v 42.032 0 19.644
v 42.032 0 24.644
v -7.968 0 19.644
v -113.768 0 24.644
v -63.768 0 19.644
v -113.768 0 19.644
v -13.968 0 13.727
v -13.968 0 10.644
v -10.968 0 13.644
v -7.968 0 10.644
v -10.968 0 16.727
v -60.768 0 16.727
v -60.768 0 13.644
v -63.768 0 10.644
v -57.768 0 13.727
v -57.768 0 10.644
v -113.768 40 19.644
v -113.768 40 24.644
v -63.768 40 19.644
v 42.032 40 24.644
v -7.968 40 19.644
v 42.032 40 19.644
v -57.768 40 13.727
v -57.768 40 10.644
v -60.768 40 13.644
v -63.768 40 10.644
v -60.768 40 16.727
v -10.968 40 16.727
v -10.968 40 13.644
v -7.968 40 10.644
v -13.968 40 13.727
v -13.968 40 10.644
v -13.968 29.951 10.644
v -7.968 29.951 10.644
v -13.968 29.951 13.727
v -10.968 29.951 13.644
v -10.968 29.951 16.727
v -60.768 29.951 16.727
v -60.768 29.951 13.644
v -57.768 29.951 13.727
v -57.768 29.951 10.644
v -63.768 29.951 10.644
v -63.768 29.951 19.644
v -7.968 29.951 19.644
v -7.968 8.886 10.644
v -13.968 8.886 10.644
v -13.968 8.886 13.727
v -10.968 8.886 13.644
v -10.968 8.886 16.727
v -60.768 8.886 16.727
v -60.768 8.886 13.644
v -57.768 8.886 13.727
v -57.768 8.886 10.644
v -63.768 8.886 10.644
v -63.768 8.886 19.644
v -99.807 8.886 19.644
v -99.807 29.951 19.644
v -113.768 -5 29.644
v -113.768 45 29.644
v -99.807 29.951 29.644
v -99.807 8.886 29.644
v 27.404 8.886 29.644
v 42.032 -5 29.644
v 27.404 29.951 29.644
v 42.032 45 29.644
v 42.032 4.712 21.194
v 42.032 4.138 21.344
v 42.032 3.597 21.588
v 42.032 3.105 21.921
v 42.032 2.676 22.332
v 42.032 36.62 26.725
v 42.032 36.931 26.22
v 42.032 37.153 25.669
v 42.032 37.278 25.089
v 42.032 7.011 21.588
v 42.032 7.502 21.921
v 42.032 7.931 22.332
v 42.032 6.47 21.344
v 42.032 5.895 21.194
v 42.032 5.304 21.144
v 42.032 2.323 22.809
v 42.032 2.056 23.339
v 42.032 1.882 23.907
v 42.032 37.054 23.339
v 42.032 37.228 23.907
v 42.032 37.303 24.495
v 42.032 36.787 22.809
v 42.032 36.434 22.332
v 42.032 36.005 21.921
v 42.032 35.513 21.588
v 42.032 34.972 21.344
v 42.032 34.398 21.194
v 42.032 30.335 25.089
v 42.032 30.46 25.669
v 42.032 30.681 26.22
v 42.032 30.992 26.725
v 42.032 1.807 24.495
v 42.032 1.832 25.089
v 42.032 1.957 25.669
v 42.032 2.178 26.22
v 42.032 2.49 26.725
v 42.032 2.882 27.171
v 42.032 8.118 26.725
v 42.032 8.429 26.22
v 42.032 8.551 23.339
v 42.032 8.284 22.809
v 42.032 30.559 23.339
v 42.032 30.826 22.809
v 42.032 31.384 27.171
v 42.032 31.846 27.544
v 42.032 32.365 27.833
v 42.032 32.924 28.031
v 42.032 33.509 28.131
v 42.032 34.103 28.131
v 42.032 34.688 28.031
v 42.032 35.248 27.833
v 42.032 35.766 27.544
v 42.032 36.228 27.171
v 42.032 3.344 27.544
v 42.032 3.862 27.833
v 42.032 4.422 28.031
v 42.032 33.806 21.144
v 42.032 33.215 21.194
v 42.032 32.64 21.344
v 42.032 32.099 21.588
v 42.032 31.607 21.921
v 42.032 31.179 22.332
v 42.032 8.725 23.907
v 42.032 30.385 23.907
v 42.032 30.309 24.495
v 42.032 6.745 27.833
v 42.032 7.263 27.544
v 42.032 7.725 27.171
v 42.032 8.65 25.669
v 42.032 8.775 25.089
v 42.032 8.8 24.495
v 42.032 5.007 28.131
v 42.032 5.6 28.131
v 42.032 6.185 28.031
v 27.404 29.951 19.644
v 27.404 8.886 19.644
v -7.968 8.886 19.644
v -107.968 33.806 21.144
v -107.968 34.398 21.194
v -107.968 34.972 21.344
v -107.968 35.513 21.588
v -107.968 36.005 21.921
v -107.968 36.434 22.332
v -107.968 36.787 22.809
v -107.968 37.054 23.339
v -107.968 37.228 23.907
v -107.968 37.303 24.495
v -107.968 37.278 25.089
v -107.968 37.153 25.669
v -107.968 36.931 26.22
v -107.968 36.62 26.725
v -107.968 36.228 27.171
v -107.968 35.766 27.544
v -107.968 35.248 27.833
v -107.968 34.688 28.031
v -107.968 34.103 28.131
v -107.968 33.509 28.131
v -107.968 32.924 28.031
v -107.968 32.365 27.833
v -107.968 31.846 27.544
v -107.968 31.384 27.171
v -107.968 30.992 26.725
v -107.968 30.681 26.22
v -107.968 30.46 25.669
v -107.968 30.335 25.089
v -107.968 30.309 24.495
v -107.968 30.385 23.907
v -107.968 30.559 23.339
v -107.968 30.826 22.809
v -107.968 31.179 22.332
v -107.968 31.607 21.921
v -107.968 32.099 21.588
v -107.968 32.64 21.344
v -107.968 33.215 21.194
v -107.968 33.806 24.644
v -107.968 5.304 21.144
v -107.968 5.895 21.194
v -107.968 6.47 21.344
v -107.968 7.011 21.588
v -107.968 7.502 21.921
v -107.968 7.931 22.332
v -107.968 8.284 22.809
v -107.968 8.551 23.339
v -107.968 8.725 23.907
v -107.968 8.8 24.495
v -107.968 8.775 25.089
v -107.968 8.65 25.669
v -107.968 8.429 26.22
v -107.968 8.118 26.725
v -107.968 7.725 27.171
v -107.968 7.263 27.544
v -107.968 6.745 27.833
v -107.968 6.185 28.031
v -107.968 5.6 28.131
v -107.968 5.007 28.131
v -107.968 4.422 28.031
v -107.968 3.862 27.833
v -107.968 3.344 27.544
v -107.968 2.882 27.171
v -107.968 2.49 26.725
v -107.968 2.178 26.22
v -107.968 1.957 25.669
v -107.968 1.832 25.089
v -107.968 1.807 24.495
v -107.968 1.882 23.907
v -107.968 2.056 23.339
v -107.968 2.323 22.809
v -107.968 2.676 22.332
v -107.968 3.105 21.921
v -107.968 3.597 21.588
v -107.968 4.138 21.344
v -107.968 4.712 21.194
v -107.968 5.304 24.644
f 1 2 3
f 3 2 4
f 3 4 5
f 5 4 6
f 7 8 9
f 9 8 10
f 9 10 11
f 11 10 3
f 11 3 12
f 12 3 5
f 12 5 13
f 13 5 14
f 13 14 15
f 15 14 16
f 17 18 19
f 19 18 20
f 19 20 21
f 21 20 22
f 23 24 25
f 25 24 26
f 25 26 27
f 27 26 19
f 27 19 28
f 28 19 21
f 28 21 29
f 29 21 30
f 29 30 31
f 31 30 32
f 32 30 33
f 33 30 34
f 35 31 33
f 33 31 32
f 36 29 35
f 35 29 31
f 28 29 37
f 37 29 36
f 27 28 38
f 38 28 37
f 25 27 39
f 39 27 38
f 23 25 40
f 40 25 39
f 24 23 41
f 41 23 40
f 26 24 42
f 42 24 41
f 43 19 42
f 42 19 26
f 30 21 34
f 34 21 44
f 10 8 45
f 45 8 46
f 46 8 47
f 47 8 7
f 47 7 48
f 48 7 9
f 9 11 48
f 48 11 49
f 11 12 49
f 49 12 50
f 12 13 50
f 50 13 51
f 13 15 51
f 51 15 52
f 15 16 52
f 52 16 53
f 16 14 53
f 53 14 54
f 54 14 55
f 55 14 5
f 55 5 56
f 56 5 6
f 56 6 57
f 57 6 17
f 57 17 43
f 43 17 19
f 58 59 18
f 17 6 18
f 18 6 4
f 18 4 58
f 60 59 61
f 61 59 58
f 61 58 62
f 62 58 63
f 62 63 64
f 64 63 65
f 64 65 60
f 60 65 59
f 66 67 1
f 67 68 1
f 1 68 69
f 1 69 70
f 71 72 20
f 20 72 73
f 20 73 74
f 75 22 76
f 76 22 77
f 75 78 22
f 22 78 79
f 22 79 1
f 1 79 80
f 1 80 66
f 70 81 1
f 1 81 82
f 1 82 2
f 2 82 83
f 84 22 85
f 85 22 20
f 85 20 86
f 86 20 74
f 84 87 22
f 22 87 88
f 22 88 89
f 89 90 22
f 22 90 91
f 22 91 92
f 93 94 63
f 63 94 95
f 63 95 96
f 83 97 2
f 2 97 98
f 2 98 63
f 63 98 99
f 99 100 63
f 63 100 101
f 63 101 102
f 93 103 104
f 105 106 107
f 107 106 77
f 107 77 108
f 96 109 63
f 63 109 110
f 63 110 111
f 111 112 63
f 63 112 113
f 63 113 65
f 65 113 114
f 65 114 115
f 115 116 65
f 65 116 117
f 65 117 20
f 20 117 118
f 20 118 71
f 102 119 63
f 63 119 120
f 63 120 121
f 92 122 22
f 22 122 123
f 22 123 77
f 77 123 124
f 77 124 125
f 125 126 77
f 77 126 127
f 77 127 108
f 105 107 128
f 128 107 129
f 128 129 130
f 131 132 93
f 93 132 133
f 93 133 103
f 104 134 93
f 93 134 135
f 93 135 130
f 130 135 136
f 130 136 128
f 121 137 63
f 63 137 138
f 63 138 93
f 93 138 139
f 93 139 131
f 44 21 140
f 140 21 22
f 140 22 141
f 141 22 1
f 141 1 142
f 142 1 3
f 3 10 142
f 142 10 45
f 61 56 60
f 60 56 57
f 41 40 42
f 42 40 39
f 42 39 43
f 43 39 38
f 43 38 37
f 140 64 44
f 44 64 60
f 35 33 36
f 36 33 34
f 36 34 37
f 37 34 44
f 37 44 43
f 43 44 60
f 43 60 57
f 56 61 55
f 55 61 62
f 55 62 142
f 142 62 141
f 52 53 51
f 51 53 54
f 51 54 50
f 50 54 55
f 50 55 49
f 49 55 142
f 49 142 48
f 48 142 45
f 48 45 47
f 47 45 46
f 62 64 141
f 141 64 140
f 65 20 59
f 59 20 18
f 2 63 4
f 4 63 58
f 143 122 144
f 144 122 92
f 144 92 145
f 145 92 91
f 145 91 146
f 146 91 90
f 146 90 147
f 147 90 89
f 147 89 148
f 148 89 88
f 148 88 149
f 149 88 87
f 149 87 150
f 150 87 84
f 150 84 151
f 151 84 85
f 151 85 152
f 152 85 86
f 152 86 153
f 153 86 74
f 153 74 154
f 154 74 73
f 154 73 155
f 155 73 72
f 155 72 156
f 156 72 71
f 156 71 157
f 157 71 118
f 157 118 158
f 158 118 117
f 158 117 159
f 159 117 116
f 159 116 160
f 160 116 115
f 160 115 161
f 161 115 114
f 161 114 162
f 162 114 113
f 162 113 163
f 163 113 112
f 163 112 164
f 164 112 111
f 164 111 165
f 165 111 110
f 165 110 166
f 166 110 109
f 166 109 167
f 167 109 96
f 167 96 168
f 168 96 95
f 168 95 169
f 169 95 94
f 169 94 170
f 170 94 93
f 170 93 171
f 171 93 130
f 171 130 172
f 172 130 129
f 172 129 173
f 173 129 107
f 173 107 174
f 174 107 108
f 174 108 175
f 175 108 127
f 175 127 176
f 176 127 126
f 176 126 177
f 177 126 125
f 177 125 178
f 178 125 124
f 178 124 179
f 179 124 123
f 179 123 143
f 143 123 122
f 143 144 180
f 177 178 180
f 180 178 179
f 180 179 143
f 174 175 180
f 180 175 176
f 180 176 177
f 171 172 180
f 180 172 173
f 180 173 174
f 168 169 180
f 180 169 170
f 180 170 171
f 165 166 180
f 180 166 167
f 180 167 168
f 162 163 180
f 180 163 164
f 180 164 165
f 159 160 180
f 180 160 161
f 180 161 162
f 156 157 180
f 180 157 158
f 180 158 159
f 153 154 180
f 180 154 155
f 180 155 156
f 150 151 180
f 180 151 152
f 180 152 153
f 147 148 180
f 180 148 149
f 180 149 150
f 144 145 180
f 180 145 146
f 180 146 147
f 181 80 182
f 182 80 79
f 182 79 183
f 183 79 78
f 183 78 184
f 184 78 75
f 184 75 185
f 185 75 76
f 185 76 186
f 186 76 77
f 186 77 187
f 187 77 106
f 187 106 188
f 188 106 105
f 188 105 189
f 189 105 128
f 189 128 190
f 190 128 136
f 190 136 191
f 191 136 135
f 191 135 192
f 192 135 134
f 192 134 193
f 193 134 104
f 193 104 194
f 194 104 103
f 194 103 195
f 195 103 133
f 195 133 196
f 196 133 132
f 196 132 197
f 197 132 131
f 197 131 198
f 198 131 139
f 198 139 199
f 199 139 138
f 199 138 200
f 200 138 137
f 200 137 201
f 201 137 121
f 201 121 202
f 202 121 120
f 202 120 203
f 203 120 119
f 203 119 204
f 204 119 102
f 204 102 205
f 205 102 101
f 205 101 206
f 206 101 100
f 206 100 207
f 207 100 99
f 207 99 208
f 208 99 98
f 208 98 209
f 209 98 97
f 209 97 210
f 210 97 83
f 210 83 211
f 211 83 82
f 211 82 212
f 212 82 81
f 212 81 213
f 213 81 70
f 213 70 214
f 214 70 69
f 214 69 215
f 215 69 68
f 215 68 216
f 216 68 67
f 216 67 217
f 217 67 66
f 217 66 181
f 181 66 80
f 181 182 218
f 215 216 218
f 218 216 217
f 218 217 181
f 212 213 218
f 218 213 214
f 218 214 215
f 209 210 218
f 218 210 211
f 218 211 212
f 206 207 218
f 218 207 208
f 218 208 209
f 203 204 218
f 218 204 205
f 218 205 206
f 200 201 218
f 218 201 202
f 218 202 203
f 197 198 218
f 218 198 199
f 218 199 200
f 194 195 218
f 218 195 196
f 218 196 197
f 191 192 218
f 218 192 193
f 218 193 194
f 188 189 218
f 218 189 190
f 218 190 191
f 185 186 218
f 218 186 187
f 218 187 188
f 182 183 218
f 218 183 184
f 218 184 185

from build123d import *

# Parameters (mm, degrees)
BOSS_EXTRUDE1_DEPTH = 40
SKETCH2_W           = 127.211228058
SKETCH2_H           = 21.064469041
CUT_EXTRUDE1_DEPTH  = 60
BOSS_EXTRUDE2_DEPTH = 155.8
SKETCH4_R           = 3.5
CUT_EXTRUDE2_DEPTH  = 150


with BuildPart() as part:
    # Sketch1 → Boss-Extrude1 (new body)
    with BuildSketch(Plane(origin=(0, 0, 0), x_dir=(1, 0, 0), z_dir=(0, 1, 0))):
        Polygon((-60.768130494, -10.644024468), (-63.768130494, -10.644024468), (-63.768130494, -19.644024468), (-113.768130494, -19.644024468), (-113.768130494, -29.644024468), (42.031869506, -29.644024468), (42.031869506, -19.644024468), (-7.968130494, -19.644024468), (-7.968130494, -10.644024468), (-10.968130494, -10.644024468), (-13.968130494, -10.644024468), (-13.968130494, -13.726650188), (-10.968130494, -13.644024468), (-10.968130494, -16.726650188), (-13.968130494, -16.726650188), (-57.768130494, -16.726650188), (-60.768130494, -16.726650188), (-60.768130494, -13.644024468), (-57.768130494, -13.726650188), (-57.768130494, -10.644024468), align=None)
    extrude(amount=BOSS_EXTRUDE1_DEPTH)

    # Sketch2 → Cut-Extrude1 (cut)
    with BuildSketch(Plane.XY.offset(29.644024468)):
        with Locations((-36.201542798, 19.418495801)):
            Rectangle(SKETCH2_W, SKETCH2_H)
    extrude(amount=-CUT_EXTRUDE1_DEPTH, mode=Mode.SUBTRACT)

    # Sketch3 → Boss-Extrude2 (add)
    with BuildSketch(Plane(origin=(42.031869506, 0, 0), x_dir=(0, 0, -1), z_dir=(1, 0, 0))):
        Polygon((-29.644024468, 40), (-24.644024468, 40), (-29.644024468, 45), align=None)
        Polygon((-29.644024468, 0), (-29.644024468, -5), (-24.644024468, 0), align=None)
    extrude(amount=-BOSS_EXTRUDE2_DEPTH)

    # Sketch4 → Cut-Extrude2 (cut)
    with BuildSketch(Plane(origin=(42.031869506, 0, 0), x_dir=(0, 0, -1), z_dir=(1, 0, 0))):
        with Locations((-24.644024468, 33.806203399)):
            Circle(SKETCH4_R)
        with Locations((-24.644024468, 5.303574021)):
            Circle(SKETCH4_R)
    extrude(amount=-CUT_EXTRUDE2_DEPTH, mode=Mode.SUBTRACT)


solid = part.part
